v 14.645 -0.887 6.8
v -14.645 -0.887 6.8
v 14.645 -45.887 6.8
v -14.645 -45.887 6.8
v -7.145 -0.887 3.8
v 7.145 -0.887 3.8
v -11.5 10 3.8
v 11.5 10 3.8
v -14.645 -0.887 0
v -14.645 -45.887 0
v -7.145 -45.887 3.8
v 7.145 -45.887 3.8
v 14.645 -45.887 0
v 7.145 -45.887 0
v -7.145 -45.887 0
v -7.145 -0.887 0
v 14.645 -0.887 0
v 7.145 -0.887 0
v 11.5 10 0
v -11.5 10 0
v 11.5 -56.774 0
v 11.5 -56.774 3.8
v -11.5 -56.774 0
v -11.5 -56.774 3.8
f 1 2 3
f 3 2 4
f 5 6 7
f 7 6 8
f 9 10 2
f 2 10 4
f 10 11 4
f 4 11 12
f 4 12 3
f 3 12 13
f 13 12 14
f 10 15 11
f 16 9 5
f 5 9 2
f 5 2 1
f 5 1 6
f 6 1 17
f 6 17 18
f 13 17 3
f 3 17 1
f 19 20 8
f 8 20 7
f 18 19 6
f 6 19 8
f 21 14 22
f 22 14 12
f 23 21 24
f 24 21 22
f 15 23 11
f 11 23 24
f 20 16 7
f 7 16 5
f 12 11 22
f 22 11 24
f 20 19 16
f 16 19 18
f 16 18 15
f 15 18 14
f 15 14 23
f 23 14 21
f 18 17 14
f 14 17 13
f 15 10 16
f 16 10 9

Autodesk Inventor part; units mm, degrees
ref_plane "YZ Plane" through (0, 0, 0) normal (1, 0, 0) x (0, 1, 0)
ref_plane "XZ Plane" through (0, 0, 0) normal (0, 1, 0) x (-1, 0, 0)
ref_plane "XY Plane" through (0, 0, 0) normal (0, 0, 1) x (1, 0, 0)
sketch "スケッチ1" plane through (0, 0, 0) normal (0, 0, 1) x (1, 0, 0)
  line L0 (0, 10) -> (11.5, 10)
  line L1 (7.1451, -0.8872) -> (11.5, 10)
  line L2 (0, 10) -> (0, 0) construction
  line L3 (0, 10) -> (-11.5, 10)
  line L4 (-7.1451, -0.8872) -> (-11.5, 10)
  line L5 (7.1451, -0.8872) -> (7.1451, -45.8872)
  line L6 (-7.1451, -45.8872) -> (-7.1451, -0.8872)
  line L7 (-7.1451, -23.3872) -> (7.1451, -23.3872) construction
  line L8 (0, -56.7743) -> (11.5, -56.7743)
  line L9 (7.1451, -45.8872) -> (11.5, -56.7743)
  line L10 (0, -56.7743) -> (-11.5, -56.7743)
  line L11 (-7.1451, -45.8872) -> (-11.5, -56.7743)
  line L12 (7.1451, -0.8872) -> (7.1451, -45.8872)
  line L13 (7.1451, -45.8872) -> (11.5, -56.7743)
  line L14 (11.5, -56.7743) -> (-11.5, -56.7743)
  line L15 (-11.5, -56.7743) -> (-7.1451, -45.8872)
  line L16 (-7.1451, -45.8872) -> (-7.1451, -0.8872)
  line L17 (-7.1451, -0.8872) -> (-11.5, 10)
  line L18 (-11.5, 10) -> (11.5, 10)
  line L19 (11.5, 10) -> (7.1451, -0.8872)
  dimension "d0" = 7.2
  dimension "d1" = 11.5
  dimension "d3" = 45
extrude "押し出し1" add sketch "スケッチ1" along normal blind 3.8
sketch "スケッチ2" plane through (0, 0, 3.8) normal (0, 0, 1) x (1, 0, 0)
  line L0 (-11.5, 10) -> (-7.1451, -0.8872) projected
  line L1 (-7.1451, -0.8872) -> (-14.6451, -0.8872)
  line L2 (-14.6451, -0.8872) -> (-14.6451, -45.8872)
  line L3 (-14.6451, -45.8872) -> (-7.1451, -45.8872)
  line L4 (-7.1451, -45.8872) -> (-7.1451, -0.8872)
  line L5 (7.1451, -45.8872) -> (7.1451, -0.8872) projected
  line L6 (7.1451, -0.8872) -> (14.6451, -0.8872)
  line L7 (14.6451, -0.8872) -> (14.6451, -45.8872)
  line L8 (14.6451, -45.8872) -> (7.1451, -45.8872)
  line L9 (7.1451, -45.8872) -> (7.1451, -0.8872)
  point P0 (0, 0)
  dimension "d6" = 7.5
  dimension "d7" = 45
  dimension "d8" = 7.5
extrude "押し出し2" add sketch "スケッチ2" against normal blind 3.8
sketch "スケッチ3" plane through (0, 0, 3.8) normal (0, 0, 1) x (1, 0, 0)
  line L0 (14.6451, -0.8872) -> (14.6451, -45.8872) projected
  line L1 (-7.1451, -45.8872) -> (-14.6451, -45.8872) projected
  line L2 (14.6451, -0.8872) -> (-14.6451, -0.8872)
  line L3 (-14.6451, -0.8872) -> (-14.6451, -45.8872)
  line L4 (-14.6451, -45.8872) -> (14.6451, -45.8872)
  line L5 (14.6451, -45.8872) -> (14.6451, -0.8872)
  point P0 (0, 0)
extrude "押し出し3" add sketch "スケッチ3" along normal blind 3
properties part number "iPad_mount_center"
